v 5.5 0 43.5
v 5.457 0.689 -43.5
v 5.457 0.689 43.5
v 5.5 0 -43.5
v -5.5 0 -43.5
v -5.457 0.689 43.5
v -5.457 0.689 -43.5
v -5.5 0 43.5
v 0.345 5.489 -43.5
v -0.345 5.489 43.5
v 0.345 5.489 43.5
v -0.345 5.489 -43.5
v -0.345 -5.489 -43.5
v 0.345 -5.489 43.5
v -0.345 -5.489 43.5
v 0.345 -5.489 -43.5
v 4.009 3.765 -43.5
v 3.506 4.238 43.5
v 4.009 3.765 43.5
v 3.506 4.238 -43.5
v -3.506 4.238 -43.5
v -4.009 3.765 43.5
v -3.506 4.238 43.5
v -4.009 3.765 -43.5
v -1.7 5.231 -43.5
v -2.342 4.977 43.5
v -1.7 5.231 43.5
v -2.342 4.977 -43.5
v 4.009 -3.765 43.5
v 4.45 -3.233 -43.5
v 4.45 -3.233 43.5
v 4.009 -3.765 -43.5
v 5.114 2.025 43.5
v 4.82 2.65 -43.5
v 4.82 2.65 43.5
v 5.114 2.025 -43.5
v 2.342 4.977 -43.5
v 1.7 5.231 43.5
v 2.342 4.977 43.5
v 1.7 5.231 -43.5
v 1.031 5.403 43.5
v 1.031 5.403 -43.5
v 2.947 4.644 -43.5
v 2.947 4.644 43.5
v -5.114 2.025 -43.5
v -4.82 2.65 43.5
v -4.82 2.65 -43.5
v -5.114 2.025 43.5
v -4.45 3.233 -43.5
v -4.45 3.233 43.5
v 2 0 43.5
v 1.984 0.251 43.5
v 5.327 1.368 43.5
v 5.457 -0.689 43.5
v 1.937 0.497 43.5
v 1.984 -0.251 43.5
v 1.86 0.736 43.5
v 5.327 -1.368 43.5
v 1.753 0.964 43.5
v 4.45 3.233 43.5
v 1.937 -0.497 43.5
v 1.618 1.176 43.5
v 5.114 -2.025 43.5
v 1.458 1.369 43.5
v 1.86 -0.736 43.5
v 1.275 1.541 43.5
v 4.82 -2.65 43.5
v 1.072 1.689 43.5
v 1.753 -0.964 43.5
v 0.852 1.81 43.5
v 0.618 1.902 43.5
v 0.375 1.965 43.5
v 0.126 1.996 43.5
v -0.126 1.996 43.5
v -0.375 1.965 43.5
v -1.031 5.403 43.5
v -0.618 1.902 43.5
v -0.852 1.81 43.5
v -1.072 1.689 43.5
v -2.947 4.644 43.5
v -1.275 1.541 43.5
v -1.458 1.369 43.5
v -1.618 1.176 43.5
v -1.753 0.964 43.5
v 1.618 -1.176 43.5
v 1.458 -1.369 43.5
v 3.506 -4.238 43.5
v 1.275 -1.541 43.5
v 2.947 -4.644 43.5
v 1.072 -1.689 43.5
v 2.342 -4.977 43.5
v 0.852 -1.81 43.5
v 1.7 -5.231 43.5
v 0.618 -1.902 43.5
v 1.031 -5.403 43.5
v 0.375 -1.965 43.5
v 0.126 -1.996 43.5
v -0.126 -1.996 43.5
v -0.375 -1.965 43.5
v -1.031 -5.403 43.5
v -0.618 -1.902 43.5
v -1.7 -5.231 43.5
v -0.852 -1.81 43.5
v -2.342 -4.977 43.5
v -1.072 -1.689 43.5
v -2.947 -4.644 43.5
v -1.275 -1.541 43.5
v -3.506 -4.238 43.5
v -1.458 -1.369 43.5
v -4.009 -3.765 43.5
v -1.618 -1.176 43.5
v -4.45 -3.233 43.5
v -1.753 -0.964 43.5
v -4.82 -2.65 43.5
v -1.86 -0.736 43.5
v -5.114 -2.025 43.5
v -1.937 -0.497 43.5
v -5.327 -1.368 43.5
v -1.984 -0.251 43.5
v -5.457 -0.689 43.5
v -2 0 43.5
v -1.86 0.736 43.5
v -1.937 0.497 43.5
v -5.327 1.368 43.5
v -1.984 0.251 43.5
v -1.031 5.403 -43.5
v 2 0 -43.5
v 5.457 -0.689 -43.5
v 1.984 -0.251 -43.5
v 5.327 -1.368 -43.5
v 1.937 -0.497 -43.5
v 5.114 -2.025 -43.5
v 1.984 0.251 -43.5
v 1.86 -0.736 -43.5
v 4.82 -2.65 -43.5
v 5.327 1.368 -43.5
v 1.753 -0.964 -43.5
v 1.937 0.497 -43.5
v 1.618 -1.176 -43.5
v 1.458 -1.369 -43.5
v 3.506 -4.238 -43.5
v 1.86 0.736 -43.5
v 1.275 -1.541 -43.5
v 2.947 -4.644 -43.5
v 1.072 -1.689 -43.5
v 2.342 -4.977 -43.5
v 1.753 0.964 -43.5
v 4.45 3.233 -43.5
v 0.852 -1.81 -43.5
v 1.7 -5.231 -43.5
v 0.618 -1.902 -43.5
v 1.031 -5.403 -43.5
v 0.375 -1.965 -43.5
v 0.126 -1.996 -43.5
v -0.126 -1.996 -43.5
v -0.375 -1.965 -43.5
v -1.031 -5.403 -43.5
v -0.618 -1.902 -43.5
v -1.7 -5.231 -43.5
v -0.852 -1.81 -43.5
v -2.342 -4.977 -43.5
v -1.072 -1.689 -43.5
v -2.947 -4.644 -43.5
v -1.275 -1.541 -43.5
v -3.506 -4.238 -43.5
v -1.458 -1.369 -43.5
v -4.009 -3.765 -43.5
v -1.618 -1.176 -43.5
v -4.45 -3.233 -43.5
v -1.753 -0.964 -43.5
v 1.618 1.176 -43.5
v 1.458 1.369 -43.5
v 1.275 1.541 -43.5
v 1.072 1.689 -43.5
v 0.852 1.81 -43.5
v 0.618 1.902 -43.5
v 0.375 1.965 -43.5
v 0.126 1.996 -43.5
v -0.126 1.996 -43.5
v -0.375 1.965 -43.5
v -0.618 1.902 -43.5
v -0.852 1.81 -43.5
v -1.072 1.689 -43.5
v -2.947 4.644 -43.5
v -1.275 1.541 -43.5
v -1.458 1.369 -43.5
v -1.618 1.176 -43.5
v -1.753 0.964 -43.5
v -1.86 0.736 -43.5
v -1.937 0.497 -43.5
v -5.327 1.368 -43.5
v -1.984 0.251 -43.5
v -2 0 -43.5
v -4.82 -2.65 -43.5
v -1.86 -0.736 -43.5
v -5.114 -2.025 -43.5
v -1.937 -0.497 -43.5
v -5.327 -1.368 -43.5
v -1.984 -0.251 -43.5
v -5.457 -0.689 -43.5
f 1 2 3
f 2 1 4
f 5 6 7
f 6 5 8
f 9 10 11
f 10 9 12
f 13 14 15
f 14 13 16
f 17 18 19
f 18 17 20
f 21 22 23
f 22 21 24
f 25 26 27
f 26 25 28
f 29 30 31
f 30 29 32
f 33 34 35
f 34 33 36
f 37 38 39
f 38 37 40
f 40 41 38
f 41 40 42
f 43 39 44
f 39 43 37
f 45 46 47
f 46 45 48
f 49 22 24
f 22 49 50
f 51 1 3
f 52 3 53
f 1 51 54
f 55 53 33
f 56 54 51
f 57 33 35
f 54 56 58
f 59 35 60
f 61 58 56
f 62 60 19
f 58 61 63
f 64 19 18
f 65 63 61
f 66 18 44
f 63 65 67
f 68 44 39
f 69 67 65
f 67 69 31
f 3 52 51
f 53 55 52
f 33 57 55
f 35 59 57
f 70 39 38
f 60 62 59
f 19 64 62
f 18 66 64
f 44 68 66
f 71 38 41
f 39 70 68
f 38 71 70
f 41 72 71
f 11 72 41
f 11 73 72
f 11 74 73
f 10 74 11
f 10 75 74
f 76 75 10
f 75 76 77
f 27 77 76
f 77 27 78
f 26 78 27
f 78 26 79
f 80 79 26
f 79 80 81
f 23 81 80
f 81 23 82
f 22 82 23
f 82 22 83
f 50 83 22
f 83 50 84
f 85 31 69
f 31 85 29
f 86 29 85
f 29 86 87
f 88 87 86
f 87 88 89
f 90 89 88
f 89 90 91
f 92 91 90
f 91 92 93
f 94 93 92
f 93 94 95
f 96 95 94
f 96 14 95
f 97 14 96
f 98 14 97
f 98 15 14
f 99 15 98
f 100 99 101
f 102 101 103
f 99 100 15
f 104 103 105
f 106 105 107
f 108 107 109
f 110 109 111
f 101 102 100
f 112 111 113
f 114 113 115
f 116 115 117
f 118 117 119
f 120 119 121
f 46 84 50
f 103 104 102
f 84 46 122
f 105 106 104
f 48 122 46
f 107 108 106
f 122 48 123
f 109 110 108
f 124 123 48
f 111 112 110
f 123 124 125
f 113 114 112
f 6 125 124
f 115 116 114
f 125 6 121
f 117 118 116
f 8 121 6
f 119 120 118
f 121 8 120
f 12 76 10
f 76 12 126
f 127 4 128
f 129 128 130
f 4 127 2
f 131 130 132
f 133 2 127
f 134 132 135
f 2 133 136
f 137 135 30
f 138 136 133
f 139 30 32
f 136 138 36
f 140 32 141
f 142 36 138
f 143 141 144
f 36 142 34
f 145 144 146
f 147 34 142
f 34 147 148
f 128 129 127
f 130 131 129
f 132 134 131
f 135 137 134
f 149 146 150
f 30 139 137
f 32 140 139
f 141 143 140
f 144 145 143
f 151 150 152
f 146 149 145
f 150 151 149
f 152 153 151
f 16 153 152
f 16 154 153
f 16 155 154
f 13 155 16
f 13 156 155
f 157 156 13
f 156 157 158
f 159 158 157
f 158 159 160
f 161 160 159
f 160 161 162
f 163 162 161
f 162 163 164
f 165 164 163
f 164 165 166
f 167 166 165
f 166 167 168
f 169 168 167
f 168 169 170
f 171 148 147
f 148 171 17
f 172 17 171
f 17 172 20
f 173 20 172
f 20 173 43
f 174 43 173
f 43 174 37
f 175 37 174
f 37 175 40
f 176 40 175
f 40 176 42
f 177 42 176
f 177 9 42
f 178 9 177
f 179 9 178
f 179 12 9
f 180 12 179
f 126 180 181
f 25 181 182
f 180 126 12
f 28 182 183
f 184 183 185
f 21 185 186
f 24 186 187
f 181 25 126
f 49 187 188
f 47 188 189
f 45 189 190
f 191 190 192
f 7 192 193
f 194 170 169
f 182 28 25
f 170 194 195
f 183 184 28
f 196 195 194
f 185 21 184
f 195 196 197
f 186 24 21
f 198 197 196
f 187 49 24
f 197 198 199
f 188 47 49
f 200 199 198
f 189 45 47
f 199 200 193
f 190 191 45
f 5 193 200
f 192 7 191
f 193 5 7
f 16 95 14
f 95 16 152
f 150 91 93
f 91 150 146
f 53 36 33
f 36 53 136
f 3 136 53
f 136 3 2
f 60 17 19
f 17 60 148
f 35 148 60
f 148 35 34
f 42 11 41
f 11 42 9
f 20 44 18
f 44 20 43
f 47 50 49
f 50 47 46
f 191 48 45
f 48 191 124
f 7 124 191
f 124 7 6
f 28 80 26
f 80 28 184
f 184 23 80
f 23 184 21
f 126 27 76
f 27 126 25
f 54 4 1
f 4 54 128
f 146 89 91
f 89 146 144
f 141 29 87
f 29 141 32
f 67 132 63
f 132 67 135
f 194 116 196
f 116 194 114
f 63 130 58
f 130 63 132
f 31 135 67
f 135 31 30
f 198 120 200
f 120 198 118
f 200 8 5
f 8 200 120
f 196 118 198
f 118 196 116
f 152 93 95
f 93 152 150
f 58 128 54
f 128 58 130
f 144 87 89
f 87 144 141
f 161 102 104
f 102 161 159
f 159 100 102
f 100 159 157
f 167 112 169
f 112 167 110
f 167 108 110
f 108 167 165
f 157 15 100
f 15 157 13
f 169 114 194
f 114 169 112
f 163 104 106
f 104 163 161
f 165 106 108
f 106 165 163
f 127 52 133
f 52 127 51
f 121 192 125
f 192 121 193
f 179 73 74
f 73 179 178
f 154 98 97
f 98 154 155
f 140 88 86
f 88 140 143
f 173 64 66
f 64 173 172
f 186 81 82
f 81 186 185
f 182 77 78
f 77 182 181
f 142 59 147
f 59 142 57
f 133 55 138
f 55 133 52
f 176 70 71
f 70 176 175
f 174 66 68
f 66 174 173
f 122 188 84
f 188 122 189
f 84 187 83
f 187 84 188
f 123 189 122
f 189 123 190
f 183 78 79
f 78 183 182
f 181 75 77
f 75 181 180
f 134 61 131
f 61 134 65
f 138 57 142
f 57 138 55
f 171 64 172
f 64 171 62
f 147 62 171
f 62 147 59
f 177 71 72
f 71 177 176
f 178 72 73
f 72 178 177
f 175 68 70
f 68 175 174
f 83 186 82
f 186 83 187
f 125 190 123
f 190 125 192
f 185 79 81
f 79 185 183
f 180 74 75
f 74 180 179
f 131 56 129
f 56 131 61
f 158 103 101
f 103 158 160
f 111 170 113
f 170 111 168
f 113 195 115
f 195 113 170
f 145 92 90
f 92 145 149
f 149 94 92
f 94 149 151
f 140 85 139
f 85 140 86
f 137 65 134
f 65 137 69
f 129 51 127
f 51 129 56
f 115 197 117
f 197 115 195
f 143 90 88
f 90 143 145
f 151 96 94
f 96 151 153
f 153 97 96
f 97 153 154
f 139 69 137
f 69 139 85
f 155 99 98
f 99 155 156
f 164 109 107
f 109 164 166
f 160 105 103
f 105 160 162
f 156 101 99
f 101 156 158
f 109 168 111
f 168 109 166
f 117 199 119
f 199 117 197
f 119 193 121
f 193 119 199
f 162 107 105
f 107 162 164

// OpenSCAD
$fn = 50;


difference() {
	union() {
		translate(v = [0, 0, -43.5000000000]) {
			cylinder(h = 87, r = 5.5000000000);
		}
	}
	union() {
		translate(v = [0, 0, -100.0000000000]) {
			cylinder(h = 200, r = 2);
		}
	}
}
